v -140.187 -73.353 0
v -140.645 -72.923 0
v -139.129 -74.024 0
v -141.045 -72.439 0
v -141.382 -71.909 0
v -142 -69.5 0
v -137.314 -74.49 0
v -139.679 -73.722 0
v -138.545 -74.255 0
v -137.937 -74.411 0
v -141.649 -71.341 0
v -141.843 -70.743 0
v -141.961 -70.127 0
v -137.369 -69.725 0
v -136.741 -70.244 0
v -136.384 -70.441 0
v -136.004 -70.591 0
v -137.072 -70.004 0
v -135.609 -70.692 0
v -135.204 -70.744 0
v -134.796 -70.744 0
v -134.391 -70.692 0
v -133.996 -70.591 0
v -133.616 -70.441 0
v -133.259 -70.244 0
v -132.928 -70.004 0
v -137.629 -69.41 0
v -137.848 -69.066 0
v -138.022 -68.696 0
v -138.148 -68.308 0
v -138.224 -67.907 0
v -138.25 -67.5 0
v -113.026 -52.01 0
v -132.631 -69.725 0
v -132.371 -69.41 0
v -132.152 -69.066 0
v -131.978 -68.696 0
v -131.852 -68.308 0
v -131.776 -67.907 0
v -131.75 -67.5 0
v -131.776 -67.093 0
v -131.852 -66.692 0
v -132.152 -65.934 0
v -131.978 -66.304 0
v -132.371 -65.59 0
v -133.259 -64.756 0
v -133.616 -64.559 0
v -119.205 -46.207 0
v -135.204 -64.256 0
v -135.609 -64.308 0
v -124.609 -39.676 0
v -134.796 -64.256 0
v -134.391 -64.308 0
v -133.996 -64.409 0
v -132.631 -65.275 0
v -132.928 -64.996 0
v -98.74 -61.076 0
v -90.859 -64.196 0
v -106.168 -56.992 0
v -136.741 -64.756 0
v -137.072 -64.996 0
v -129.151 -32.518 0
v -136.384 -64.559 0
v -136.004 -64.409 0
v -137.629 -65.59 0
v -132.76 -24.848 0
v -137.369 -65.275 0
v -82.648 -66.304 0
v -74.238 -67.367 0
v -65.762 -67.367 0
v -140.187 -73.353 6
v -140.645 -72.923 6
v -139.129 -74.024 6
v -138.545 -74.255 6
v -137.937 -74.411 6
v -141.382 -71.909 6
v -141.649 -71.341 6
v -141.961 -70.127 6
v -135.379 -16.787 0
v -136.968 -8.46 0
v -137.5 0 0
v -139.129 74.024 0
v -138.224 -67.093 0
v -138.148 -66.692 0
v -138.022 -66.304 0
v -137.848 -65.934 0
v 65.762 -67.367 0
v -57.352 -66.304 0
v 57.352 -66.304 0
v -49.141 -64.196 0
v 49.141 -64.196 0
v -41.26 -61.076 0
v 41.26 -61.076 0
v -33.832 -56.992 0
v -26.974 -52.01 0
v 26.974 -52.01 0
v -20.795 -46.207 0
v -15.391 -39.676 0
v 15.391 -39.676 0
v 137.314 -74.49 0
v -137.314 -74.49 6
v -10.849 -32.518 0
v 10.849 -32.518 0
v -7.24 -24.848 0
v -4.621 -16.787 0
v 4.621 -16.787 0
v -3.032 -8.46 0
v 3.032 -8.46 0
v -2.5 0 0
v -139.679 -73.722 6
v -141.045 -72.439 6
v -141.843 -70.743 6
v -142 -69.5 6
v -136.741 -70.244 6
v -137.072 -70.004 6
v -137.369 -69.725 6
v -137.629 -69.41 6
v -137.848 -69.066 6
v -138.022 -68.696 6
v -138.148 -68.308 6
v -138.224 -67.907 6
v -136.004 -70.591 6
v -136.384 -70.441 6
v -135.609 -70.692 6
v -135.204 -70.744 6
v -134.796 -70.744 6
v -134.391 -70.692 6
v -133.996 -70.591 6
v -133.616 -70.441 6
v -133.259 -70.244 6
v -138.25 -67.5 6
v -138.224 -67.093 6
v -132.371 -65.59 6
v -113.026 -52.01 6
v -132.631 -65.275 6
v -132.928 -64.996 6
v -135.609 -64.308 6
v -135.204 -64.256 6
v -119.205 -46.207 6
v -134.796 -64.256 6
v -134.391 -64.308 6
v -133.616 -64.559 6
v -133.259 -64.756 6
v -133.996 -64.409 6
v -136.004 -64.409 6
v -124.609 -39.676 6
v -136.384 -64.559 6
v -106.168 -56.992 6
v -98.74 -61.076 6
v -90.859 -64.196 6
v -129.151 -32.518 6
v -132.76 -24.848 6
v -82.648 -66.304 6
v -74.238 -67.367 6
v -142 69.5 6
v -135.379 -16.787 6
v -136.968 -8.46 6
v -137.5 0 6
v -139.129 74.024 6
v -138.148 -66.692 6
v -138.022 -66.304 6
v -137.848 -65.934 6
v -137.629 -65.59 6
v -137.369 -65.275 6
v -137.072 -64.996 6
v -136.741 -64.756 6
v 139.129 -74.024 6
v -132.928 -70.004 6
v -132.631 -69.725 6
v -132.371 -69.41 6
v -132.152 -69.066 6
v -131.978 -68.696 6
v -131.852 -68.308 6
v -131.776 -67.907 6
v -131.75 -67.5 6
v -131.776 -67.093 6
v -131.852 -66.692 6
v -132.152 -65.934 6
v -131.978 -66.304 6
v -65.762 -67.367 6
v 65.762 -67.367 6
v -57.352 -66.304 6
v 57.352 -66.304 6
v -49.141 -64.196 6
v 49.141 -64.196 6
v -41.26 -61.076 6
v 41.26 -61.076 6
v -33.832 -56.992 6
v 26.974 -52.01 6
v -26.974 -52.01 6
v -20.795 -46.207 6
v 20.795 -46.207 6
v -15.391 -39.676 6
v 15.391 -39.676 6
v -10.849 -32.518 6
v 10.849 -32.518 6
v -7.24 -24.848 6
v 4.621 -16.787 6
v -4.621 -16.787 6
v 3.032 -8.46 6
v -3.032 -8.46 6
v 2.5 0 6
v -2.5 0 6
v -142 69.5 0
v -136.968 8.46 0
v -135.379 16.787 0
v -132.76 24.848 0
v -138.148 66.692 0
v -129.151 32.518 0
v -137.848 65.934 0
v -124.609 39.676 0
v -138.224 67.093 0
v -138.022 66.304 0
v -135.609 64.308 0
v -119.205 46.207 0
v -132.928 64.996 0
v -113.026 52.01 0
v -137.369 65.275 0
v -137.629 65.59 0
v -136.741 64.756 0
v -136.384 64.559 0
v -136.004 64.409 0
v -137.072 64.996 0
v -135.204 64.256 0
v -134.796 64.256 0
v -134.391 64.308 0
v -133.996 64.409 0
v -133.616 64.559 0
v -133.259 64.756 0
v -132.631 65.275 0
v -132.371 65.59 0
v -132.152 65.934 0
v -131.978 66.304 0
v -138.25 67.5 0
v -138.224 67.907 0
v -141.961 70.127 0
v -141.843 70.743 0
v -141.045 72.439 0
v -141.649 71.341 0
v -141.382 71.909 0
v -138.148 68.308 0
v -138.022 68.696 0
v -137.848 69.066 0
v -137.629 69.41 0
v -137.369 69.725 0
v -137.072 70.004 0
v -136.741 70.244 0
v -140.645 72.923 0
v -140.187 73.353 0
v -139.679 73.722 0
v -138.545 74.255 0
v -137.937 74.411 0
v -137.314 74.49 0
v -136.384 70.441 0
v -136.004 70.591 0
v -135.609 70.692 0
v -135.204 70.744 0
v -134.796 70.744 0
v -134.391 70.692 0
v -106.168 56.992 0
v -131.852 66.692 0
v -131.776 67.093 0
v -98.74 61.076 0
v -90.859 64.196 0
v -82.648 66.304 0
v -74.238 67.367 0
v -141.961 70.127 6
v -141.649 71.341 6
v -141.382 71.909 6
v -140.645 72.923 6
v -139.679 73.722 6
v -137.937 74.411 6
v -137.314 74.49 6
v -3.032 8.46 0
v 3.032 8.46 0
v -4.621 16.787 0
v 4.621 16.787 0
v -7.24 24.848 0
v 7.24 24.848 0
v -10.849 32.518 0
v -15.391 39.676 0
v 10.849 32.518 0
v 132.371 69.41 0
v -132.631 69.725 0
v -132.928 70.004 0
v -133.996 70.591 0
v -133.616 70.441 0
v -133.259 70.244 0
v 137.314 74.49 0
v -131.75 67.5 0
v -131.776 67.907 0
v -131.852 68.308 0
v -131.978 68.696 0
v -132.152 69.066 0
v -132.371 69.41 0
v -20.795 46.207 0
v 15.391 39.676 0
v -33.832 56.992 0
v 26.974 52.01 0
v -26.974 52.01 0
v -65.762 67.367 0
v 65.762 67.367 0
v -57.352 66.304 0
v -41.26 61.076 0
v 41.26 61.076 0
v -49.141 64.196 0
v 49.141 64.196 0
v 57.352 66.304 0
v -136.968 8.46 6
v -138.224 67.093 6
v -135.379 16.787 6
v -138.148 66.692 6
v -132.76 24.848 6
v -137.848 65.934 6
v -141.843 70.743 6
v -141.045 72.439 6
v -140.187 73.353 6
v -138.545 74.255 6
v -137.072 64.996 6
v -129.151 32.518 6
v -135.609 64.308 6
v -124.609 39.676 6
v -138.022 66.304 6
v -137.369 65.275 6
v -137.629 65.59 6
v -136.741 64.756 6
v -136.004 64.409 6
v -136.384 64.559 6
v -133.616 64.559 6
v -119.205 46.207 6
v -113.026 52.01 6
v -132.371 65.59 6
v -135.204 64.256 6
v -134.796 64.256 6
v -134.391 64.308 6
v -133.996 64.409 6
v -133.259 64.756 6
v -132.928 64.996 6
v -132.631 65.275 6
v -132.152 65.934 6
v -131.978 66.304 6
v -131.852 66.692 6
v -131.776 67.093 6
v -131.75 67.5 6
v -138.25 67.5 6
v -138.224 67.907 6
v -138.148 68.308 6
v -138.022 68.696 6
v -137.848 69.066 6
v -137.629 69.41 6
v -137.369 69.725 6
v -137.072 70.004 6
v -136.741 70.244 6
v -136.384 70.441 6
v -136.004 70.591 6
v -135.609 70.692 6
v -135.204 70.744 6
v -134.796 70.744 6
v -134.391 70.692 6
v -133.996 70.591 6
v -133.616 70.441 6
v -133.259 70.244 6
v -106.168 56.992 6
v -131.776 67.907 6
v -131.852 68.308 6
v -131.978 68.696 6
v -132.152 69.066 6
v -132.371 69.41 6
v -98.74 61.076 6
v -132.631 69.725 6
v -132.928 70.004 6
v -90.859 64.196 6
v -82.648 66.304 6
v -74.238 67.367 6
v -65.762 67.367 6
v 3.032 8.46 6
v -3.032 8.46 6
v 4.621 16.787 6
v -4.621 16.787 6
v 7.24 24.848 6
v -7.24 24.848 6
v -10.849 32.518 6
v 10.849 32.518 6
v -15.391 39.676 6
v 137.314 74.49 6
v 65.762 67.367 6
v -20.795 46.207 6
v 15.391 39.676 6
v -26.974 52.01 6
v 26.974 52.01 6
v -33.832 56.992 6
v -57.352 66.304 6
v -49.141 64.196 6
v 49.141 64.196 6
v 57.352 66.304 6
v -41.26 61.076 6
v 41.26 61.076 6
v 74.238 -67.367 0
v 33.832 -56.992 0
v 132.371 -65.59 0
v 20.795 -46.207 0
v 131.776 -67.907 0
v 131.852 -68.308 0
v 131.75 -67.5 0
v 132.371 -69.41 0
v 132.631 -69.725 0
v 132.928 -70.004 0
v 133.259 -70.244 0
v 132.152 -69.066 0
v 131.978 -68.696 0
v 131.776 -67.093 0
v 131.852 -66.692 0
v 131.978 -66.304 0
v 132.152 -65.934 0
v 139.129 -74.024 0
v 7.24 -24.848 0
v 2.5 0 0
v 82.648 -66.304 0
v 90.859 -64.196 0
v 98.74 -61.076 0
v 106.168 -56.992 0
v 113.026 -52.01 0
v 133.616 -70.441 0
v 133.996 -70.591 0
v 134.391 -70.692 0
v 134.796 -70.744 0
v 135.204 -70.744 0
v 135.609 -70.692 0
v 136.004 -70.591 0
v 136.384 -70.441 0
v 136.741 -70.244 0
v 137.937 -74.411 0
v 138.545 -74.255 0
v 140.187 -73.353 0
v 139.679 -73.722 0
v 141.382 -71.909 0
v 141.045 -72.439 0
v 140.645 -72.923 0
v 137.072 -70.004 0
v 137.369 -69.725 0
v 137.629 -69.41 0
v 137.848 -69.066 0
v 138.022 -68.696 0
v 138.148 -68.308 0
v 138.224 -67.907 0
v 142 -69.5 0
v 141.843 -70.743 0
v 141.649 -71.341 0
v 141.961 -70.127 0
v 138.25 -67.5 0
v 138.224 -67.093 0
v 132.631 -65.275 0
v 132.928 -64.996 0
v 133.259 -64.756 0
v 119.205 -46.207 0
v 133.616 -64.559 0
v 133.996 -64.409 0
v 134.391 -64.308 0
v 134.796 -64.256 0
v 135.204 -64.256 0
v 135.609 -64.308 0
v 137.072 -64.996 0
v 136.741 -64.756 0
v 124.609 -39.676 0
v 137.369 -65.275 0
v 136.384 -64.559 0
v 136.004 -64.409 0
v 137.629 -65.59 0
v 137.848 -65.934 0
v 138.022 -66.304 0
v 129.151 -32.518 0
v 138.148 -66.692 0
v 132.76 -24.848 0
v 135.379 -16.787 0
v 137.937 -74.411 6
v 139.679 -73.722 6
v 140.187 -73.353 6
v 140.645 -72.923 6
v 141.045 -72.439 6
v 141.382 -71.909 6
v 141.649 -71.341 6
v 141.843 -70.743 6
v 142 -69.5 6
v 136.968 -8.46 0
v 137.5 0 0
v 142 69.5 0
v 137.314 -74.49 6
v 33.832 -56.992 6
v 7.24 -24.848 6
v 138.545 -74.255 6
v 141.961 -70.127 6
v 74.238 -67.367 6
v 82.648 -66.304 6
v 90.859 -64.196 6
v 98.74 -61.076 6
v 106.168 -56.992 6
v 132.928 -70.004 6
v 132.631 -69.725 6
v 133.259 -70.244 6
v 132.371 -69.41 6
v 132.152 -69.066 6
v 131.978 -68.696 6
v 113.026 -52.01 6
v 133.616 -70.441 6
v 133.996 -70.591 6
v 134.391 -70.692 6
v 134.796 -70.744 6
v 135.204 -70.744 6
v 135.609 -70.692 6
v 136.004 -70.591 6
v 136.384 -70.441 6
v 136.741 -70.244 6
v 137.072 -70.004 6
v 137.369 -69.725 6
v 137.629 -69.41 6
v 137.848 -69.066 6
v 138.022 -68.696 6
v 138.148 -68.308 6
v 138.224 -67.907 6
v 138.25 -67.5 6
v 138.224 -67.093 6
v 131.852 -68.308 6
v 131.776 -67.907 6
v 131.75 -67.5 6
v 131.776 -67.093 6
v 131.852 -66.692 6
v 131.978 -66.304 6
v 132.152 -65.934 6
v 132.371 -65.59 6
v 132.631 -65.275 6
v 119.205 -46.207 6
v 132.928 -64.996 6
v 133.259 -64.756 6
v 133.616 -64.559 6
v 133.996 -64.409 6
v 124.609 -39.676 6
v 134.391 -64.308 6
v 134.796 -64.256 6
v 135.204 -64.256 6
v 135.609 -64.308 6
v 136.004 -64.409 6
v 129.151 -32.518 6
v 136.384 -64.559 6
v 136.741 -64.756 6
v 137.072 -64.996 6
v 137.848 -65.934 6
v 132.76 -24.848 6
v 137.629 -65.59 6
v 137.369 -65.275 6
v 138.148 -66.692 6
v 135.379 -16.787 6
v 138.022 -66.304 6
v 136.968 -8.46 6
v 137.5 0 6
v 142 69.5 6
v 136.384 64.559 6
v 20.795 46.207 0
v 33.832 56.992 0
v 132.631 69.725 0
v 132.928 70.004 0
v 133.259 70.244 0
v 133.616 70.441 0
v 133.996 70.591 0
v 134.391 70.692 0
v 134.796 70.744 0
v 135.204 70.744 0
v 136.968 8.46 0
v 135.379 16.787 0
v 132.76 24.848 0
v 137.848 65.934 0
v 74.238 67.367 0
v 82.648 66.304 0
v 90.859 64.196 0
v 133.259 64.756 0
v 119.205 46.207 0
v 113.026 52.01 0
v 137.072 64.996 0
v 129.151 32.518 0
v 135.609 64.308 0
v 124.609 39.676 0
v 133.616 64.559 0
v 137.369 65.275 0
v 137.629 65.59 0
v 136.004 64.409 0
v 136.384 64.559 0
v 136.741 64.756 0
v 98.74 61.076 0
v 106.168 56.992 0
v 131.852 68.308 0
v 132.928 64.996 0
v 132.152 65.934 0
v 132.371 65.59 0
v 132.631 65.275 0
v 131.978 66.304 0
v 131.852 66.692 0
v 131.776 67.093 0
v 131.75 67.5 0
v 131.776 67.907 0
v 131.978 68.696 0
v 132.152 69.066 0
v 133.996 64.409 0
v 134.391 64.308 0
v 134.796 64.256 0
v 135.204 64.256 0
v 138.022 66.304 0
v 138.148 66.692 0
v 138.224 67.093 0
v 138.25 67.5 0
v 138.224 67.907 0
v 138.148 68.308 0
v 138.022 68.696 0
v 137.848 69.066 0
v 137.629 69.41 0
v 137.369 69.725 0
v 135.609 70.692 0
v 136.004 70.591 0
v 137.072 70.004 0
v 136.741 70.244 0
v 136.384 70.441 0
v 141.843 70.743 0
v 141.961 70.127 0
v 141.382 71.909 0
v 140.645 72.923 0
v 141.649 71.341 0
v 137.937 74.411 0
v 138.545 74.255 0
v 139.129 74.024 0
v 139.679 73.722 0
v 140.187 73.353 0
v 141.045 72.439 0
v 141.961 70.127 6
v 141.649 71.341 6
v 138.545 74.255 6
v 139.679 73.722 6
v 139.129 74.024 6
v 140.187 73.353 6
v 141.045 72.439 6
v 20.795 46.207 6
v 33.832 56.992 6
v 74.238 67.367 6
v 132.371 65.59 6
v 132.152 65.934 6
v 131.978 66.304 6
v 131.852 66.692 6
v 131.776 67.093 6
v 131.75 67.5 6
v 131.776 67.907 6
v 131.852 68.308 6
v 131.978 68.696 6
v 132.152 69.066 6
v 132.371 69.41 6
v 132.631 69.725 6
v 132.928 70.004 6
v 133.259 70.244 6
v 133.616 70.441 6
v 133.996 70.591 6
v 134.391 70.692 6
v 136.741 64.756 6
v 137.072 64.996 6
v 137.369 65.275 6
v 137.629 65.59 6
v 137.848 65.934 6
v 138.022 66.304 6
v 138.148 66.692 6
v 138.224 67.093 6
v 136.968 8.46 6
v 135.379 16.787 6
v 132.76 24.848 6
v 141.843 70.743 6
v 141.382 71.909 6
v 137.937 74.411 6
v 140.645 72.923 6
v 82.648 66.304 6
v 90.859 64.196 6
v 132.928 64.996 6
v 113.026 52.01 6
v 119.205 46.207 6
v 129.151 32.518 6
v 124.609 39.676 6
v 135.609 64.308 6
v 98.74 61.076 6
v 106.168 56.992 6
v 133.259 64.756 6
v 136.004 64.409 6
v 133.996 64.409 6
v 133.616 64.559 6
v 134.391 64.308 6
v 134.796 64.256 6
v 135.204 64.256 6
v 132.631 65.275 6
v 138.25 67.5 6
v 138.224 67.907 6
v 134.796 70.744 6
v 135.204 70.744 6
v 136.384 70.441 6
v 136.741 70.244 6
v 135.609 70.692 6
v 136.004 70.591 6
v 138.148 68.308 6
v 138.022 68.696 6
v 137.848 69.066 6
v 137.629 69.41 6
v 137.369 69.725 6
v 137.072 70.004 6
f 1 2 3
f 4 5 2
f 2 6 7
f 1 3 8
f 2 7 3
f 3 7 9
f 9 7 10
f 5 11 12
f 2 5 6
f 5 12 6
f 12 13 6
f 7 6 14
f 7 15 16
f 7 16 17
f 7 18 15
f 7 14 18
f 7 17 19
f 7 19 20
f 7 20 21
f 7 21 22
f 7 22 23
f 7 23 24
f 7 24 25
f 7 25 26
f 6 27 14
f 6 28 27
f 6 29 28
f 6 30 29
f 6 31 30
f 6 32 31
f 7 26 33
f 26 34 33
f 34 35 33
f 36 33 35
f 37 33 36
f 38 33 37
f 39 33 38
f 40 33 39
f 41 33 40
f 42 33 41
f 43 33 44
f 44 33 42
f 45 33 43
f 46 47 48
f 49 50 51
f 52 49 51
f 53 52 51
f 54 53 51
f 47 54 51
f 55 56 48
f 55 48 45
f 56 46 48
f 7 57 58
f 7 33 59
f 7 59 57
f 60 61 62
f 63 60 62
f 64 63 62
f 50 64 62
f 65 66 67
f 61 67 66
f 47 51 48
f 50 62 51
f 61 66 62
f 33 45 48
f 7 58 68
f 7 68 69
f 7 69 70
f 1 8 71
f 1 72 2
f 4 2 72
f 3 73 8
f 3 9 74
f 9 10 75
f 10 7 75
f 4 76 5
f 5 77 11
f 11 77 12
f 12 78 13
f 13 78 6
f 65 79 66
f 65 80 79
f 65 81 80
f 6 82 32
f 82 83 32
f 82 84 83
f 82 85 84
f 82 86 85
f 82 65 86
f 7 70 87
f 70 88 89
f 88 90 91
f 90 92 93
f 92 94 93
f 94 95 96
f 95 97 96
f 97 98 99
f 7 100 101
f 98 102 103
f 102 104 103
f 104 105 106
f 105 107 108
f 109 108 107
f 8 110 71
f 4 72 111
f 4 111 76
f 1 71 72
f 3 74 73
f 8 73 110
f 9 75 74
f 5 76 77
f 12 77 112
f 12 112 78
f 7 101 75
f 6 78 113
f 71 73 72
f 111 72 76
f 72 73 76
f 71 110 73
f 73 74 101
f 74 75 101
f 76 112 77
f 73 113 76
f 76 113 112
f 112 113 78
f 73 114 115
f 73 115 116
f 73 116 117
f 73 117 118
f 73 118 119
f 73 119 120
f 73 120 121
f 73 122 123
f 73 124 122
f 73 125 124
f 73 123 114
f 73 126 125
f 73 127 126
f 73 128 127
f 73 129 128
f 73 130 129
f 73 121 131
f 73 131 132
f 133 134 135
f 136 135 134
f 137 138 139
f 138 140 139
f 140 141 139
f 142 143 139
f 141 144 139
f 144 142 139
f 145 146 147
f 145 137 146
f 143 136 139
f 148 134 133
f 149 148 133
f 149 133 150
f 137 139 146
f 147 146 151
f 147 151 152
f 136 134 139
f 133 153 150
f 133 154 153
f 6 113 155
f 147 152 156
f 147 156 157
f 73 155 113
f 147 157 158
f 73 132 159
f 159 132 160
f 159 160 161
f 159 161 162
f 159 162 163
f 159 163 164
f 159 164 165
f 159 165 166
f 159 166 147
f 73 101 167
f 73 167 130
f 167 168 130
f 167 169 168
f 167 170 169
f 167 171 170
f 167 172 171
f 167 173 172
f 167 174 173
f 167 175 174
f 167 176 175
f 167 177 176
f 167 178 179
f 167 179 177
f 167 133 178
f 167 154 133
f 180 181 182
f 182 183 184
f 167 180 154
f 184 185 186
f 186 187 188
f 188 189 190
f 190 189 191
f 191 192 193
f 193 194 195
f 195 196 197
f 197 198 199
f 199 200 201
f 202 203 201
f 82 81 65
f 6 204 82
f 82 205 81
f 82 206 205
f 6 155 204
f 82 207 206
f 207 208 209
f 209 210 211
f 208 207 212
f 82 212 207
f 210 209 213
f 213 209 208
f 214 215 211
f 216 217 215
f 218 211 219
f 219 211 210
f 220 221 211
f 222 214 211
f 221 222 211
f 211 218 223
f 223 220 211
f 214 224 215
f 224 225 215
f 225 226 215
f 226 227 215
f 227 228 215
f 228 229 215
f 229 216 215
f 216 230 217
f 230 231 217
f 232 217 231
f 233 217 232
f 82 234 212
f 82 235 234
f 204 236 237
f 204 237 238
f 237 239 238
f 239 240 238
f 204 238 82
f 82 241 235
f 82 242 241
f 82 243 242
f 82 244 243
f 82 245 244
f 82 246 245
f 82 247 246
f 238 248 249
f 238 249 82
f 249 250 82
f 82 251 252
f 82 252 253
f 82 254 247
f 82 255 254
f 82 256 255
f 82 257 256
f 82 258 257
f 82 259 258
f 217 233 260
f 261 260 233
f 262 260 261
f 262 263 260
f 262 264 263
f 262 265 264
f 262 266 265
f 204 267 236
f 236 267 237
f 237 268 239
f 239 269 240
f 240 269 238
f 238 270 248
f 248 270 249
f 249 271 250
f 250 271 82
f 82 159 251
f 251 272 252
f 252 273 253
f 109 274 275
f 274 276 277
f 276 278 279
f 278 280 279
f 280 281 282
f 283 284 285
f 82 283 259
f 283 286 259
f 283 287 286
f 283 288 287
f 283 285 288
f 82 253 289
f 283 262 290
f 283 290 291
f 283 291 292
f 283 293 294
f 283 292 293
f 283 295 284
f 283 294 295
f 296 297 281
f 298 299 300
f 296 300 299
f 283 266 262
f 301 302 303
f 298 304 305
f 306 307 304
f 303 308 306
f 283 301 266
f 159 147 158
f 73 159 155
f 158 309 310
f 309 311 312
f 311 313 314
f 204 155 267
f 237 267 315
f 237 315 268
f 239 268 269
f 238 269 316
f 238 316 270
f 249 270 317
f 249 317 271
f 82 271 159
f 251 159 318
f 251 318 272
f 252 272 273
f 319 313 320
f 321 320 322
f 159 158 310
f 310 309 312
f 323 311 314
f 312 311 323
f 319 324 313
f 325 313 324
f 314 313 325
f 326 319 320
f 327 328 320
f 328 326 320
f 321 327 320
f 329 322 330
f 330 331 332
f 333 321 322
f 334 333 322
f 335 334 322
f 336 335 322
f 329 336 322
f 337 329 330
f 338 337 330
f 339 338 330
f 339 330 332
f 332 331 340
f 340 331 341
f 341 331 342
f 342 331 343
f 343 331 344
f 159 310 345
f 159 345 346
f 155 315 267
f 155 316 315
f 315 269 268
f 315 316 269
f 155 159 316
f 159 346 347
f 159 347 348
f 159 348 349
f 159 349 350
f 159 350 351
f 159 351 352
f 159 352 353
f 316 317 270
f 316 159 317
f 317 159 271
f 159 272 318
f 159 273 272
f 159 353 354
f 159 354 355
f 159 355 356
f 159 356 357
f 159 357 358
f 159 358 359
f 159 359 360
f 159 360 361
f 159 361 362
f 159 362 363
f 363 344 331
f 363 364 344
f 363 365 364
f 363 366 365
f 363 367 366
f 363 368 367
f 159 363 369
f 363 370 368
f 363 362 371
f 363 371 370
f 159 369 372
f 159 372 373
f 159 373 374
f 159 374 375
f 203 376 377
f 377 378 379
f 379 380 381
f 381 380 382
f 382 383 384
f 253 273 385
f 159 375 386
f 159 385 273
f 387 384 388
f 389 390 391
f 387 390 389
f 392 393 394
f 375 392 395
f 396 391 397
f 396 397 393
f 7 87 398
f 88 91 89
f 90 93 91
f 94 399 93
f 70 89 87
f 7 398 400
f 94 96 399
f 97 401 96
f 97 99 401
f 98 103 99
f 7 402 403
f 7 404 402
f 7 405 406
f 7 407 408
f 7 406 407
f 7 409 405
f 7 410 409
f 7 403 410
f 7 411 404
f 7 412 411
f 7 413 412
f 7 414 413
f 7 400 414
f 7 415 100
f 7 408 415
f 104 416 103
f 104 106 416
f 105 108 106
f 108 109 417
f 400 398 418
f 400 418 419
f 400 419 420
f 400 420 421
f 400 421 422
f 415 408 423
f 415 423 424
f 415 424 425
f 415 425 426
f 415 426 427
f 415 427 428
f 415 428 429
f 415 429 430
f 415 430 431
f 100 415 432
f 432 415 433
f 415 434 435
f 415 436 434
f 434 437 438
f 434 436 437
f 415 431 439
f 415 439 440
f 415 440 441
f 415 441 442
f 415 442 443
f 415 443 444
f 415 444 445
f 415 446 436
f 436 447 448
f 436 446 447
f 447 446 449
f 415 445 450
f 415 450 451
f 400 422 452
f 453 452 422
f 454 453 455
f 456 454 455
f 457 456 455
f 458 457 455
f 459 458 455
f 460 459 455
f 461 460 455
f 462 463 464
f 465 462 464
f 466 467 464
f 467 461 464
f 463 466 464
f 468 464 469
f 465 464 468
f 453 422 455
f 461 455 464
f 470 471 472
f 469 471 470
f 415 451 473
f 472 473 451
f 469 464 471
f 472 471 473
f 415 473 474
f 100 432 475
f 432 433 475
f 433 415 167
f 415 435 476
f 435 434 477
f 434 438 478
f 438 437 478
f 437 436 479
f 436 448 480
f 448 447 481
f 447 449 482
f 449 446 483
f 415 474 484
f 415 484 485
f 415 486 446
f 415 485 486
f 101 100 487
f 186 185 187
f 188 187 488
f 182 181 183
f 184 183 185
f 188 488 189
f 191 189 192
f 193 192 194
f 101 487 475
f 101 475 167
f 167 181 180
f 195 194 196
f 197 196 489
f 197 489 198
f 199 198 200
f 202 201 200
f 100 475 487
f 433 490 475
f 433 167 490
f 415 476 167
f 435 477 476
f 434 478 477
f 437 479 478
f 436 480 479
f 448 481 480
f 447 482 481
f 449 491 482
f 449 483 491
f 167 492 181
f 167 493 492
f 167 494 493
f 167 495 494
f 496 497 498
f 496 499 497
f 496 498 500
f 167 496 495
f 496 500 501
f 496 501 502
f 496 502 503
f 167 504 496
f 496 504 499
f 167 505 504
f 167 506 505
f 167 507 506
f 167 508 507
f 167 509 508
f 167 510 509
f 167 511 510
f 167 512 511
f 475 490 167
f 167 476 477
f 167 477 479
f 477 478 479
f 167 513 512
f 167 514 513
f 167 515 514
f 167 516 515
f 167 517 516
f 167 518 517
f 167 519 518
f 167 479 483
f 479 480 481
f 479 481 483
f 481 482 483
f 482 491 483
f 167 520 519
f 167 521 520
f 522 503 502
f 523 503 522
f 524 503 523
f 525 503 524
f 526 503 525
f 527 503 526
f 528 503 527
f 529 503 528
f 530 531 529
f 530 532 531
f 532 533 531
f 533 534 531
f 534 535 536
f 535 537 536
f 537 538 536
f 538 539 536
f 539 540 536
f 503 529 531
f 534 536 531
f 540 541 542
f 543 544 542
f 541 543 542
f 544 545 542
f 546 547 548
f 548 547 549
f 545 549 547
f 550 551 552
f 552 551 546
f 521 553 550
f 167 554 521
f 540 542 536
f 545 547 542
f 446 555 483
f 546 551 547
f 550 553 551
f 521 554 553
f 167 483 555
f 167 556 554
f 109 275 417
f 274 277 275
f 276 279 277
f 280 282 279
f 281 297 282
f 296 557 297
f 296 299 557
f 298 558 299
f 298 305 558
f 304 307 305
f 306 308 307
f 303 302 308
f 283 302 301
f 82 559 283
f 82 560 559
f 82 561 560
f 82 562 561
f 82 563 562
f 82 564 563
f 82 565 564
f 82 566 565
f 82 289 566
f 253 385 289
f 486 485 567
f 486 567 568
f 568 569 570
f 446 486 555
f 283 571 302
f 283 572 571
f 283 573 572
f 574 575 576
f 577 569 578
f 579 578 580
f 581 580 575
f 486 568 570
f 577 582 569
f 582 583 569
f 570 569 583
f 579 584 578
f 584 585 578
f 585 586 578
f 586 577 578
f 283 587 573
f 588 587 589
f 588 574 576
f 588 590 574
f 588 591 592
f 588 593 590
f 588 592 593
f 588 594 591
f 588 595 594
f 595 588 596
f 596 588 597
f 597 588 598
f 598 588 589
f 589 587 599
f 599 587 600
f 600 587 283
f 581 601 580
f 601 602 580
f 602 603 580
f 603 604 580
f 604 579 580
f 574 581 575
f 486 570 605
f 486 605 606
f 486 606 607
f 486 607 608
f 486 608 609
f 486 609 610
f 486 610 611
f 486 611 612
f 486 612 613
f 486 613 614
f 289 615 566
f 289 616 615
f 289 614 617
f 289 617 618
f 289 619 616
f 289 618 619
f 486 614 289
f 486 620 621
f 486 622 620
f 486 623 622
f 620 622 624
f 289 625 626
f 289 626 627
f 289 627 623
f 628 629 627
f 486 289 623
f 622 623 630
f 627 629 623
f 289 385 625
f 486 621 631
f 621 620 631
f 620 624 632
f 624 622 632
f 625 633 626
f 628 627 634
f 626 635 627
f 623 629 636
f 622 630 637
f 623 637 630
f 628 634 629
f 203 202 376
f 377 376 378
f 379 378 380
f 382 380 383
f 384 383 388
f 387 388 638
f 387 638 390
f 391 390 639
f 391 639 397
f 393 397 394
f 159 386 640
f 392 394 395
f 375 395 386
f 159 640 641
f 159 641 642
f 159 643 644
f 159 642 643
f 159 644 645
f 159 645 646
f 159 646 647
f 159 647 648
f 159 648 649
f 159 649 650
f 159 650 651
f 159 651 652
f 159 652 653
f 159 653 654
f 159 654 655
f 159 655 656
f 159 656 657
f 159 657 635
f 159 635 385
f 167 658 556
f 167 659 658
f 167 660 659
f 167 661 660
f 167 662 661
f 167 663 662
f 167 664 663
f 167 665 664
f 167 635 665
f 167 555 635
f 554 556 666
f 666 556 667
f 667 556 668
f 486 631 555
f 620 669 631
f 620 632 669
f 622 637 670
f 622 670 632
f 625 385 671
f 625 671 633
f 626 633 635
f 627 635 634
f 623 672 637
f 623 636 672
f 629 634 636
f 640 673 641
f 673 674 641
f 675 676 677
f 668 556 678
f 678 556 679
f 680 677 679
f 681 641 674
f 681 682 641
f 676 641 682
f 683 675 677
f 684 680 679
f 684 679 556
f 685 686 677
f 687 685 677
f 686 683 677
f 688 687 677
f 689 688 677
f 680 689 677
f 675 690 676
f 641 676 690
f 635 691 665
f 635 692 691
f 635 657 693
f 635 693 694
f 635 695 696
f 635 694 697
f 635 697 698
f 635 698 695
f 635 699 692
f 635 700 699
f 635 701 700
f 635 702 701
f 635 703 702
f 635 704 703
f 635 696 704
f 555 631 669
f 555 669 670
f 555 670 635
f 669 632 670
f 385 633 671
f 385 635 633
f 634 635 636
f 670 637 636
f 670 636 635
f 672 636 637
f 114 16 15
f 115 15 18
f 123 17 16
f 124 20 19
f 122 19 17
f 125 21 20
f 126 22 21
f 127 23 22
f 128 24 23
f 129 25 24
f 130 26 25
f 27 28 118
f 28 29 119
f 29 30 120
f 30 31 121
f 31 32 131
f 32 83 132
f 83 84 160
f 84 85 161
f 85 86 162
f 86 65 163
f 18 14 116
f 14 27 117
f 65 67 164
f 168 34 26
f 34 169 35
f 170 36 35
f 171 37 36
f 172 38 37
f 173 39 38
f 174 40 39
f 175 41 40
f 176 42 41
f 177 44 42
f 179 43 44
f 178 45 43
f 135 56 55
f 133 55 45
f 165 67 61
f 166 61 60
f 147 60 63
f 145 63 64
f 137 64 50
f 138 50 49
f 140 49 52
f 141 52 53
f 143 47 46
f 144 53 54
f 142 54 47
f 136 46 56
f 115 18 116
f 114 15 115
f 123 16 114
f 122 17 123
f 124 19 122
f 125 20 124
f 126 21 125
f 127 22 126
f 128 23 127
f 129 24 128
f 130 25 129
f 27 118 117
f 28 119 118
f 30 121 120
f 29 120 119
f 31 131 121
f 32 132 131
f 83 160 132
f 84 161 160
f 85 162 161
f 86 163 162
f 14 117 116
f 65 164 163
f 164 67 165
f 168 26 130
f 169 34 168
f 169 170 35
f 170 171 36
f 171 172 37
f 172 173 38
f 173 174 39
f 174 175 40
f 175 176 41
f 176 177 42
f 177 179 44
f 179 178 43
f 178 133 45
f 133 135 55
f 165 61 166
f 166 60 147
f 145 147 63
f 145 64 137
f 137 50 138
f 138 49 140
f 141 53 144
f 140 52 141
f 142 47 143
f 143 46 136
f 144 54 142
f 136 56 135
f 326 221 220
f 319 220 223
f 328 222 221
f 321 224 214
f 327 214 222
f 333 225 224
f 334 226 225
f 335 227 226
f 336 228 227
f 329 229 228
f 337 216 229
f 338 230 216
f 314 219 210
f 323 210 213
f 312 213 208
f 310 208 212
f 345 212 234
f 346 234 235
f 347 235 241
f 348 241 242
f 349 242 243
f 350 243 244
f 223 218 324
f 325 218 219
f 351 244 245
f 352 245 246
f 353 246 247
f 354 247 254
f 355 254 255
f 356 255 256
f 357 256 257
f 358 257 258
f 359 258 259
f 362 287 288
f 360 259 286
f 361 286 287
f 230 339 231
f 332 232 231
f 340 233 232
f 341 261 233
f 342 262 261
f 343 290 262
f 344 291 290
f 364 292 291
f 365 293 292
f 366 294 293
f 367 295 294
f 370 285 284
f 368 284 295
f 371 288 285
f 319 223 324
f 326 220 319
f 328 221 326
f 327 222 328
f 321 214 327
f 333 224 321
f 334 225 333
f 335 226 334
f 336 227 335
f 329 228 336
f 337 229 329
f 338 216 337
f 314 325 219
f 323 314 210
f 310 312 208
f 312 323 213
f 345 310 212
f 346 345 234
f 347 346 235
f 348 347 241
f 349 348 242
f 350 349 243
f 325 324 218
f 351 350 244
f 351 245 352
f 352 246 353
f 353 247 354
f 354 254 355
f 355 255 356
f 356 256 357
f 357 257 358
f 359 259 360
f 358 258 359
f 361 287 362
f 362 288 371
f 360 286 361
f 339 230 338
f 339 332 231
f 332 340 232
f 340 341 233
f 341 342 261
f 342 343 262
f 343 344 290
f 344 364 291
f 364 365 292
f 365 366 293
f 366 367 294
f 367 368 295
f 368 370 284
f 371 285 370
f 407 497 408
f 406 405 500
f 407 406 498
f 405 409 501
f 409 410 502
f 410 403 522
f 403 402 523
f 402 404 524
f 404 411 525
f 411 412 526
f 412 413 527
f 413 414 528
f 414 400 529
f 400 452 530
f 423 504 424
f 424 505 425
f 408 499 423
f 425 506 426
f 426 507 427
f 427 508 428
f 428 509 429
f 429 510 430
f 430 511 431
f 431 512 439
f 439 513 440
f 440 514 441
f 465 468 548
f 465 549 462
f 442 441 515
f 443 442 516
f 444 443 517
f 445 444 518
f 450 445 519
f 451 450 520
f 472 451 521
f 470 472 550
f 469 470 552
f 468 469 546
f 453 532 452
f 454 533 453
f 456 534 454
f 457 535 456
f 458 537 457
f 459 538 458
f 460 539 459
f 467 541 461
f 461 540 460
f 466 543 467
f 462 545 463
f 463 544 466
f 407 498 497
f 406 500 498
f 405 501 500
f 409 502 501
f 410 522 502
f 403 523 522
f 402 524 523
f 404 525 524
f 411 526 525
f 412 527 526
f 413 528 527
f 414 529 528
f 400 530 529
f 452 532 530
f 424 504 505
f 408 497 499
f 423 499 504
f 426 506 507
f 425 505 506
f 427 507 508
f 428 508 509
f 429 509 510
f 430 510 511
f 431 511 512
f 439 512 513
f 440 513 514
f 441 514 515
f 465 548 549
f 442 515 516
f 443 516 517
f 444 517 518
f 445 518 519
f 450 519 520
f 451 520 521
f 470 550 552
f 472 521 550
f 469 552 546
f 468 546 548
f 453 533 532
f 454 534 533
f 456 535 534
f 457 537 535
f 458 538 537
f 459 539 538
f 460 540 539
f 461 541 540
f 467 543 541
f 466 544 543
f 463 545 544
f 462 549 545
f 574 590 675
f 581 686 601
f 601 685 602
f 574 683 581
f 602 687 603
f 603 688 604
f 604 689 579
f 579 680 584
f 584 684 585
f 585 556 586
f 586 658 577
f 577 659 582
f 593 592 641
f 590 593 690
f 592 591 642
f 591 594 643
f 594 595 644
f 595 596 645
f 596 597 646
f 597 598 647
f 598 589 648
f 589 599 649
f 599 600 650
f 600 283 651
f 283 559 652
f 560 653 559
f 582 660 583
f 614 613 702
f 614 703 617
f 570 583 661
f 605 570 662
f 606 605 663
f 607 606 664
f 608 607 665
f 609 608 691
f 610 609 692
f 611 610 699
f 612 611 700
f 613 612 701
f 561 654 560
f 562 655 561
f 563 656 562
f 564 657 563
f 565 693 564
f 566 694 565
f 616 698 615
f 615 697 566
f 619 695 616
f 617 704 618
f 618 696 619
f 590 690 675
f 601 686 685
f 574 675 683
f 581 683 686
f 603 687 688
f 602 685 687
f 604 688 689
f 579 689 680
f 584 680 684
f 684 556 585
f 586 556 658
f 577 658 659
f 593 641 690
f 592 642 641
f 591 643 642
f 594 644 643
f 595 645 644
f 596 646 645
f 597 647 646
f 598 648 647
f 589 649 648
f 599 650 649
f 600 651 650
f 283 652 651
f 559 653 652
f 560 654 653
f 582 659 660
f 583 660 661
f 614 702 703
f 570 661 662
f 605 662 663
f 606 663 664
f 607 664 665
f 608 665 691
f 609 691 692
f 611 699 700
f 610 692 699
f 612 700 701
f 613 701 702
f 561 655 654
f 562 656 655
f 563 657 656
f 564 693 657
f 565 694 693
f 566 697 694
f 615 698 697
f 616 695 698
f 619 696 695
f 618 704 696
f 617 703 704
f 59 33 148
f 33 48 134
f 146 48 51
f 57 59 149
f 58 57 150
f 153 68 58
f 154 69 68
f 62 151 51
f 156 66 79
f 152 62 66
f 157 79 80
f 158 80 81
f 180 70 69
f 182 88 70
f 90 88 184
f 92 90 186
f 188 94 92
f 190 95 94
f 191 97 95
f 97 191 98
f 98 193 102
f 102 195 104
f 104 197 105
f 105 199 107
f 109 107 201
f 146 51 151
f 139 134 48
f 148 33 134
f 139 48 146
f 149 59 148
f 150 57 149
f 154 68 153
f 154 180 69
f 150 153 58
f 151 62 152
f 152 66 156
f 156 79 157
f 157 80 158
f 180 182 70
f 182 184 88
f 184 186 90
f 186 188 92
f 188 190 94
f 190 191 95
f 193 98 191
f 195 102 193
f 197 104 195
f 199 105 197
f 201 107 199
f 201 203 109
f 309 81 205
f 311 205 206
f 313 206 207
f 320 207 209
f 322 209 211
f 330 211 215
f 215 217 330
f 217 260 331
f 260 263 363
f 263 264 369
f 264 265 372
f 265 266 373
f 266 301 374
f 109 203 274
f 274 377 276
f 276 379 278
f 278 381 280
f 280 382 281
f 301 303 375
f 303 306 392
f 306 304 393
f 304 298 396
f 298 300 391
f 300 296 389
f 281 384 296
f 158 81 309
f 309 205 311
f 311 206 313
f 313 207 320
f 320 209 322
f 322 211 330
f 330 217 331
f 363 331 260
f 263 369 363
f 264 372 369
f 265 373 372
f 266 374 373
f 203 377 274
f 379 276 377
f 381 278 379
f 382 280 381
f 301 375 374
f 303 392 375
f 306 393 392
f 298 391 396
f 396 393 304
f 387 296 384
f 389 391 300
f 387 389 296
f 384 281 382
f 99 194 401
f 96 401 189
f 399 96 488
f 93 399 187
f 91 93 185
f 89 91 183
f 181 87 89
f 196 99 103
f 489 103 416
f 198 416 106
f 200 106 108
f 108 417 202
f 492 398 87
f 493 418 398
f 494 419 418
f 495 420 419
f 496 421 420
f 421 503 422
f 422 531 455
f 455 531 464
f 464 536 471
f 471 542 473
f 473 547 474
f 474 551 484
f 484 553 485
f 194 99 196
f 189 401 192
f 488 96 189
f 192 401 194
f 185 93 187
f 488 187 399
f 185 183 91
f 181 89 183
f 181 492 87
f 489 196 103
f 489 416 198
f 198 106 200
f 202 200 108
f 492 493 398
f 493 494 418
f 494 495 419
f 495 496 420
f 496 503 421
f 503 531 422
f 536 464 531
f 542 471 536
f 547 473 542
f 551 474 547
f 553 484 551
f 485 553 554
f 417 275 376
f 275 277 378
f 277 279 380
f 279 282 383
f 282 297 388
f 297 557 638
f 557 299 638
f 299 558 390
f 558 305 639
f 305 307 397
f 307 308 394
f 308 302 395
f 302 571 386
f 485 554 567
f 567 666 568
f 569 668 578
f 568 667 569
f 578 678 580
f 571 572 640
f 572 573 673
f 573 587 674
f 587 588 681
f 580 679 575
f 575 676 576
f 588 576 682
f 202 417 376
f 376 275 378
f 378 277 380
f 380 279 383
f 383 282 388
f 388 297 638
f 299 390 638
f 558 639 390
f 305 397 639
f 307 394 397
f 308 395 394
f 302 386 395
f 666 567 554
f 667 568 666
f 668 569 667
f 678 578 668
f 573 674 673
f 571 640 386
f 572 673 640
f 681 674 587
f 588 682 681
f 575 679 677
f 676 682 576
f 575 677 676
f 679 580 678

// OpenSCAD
$fn = 50;

difference() {
	union() {
		hull() {
			translate(v = [-137.0, 69.5, 0]) {
				cylinder(h = 6, r = 5);
			}
			translate(v = [137.0, 69.5, 0]) {
				cylinder(h = 6, r = 5);
			}
			translate(v = [-137.0, -69.5, 0]) {
				cylinder(h = 6, r = 5);
			}
			translate(v = [137.0, -69.5, 0]) {
				cylinder(h = 6, r = 5);
			}
		}
	}
	union() {
		translate(v = [-135.0, -67.5, -100.0]) {
			cylinder(h = 200, r = 3.25);
		}
		translate(v = [-135.0, 67.5, -100.0]) {
			cylinder(h = 200, r = 3.25);
		}
		translate(v = [135.0, -67.5, -100.0]) {
			cylinder(h = 200, r = 3.25);
		}
		translate(v = [135.0, 67.5, -100.0]) {
			cylinder(h = 200, r = 3.25);
		}
		translate(v = [-135.0, -67.5, -100.0]) {
			cylinder(h = 200, r = 1.8);
		}
		translate(v = [-135.0, 67.5, -100.0]) {
			cylinder(h = 200, r = 1.8);
		}
		translate(v = [135.0, -67.5, -100.0]) {
			cylinder(h = 200, r = 1.8);
		}
		translate(v = [135.0, 67.5, -100.0]) {
			cylinder(h = 200, r = 1.8);
		}
		translate(v = [-70.0, 0, 0.0]) {
			cylinder(h = 6, r = 67.5);
		}
		translate(v = [70.0, 0, 0.0]) {
			cylinder(h = 6, r = 67.5);
		}
	}
}
